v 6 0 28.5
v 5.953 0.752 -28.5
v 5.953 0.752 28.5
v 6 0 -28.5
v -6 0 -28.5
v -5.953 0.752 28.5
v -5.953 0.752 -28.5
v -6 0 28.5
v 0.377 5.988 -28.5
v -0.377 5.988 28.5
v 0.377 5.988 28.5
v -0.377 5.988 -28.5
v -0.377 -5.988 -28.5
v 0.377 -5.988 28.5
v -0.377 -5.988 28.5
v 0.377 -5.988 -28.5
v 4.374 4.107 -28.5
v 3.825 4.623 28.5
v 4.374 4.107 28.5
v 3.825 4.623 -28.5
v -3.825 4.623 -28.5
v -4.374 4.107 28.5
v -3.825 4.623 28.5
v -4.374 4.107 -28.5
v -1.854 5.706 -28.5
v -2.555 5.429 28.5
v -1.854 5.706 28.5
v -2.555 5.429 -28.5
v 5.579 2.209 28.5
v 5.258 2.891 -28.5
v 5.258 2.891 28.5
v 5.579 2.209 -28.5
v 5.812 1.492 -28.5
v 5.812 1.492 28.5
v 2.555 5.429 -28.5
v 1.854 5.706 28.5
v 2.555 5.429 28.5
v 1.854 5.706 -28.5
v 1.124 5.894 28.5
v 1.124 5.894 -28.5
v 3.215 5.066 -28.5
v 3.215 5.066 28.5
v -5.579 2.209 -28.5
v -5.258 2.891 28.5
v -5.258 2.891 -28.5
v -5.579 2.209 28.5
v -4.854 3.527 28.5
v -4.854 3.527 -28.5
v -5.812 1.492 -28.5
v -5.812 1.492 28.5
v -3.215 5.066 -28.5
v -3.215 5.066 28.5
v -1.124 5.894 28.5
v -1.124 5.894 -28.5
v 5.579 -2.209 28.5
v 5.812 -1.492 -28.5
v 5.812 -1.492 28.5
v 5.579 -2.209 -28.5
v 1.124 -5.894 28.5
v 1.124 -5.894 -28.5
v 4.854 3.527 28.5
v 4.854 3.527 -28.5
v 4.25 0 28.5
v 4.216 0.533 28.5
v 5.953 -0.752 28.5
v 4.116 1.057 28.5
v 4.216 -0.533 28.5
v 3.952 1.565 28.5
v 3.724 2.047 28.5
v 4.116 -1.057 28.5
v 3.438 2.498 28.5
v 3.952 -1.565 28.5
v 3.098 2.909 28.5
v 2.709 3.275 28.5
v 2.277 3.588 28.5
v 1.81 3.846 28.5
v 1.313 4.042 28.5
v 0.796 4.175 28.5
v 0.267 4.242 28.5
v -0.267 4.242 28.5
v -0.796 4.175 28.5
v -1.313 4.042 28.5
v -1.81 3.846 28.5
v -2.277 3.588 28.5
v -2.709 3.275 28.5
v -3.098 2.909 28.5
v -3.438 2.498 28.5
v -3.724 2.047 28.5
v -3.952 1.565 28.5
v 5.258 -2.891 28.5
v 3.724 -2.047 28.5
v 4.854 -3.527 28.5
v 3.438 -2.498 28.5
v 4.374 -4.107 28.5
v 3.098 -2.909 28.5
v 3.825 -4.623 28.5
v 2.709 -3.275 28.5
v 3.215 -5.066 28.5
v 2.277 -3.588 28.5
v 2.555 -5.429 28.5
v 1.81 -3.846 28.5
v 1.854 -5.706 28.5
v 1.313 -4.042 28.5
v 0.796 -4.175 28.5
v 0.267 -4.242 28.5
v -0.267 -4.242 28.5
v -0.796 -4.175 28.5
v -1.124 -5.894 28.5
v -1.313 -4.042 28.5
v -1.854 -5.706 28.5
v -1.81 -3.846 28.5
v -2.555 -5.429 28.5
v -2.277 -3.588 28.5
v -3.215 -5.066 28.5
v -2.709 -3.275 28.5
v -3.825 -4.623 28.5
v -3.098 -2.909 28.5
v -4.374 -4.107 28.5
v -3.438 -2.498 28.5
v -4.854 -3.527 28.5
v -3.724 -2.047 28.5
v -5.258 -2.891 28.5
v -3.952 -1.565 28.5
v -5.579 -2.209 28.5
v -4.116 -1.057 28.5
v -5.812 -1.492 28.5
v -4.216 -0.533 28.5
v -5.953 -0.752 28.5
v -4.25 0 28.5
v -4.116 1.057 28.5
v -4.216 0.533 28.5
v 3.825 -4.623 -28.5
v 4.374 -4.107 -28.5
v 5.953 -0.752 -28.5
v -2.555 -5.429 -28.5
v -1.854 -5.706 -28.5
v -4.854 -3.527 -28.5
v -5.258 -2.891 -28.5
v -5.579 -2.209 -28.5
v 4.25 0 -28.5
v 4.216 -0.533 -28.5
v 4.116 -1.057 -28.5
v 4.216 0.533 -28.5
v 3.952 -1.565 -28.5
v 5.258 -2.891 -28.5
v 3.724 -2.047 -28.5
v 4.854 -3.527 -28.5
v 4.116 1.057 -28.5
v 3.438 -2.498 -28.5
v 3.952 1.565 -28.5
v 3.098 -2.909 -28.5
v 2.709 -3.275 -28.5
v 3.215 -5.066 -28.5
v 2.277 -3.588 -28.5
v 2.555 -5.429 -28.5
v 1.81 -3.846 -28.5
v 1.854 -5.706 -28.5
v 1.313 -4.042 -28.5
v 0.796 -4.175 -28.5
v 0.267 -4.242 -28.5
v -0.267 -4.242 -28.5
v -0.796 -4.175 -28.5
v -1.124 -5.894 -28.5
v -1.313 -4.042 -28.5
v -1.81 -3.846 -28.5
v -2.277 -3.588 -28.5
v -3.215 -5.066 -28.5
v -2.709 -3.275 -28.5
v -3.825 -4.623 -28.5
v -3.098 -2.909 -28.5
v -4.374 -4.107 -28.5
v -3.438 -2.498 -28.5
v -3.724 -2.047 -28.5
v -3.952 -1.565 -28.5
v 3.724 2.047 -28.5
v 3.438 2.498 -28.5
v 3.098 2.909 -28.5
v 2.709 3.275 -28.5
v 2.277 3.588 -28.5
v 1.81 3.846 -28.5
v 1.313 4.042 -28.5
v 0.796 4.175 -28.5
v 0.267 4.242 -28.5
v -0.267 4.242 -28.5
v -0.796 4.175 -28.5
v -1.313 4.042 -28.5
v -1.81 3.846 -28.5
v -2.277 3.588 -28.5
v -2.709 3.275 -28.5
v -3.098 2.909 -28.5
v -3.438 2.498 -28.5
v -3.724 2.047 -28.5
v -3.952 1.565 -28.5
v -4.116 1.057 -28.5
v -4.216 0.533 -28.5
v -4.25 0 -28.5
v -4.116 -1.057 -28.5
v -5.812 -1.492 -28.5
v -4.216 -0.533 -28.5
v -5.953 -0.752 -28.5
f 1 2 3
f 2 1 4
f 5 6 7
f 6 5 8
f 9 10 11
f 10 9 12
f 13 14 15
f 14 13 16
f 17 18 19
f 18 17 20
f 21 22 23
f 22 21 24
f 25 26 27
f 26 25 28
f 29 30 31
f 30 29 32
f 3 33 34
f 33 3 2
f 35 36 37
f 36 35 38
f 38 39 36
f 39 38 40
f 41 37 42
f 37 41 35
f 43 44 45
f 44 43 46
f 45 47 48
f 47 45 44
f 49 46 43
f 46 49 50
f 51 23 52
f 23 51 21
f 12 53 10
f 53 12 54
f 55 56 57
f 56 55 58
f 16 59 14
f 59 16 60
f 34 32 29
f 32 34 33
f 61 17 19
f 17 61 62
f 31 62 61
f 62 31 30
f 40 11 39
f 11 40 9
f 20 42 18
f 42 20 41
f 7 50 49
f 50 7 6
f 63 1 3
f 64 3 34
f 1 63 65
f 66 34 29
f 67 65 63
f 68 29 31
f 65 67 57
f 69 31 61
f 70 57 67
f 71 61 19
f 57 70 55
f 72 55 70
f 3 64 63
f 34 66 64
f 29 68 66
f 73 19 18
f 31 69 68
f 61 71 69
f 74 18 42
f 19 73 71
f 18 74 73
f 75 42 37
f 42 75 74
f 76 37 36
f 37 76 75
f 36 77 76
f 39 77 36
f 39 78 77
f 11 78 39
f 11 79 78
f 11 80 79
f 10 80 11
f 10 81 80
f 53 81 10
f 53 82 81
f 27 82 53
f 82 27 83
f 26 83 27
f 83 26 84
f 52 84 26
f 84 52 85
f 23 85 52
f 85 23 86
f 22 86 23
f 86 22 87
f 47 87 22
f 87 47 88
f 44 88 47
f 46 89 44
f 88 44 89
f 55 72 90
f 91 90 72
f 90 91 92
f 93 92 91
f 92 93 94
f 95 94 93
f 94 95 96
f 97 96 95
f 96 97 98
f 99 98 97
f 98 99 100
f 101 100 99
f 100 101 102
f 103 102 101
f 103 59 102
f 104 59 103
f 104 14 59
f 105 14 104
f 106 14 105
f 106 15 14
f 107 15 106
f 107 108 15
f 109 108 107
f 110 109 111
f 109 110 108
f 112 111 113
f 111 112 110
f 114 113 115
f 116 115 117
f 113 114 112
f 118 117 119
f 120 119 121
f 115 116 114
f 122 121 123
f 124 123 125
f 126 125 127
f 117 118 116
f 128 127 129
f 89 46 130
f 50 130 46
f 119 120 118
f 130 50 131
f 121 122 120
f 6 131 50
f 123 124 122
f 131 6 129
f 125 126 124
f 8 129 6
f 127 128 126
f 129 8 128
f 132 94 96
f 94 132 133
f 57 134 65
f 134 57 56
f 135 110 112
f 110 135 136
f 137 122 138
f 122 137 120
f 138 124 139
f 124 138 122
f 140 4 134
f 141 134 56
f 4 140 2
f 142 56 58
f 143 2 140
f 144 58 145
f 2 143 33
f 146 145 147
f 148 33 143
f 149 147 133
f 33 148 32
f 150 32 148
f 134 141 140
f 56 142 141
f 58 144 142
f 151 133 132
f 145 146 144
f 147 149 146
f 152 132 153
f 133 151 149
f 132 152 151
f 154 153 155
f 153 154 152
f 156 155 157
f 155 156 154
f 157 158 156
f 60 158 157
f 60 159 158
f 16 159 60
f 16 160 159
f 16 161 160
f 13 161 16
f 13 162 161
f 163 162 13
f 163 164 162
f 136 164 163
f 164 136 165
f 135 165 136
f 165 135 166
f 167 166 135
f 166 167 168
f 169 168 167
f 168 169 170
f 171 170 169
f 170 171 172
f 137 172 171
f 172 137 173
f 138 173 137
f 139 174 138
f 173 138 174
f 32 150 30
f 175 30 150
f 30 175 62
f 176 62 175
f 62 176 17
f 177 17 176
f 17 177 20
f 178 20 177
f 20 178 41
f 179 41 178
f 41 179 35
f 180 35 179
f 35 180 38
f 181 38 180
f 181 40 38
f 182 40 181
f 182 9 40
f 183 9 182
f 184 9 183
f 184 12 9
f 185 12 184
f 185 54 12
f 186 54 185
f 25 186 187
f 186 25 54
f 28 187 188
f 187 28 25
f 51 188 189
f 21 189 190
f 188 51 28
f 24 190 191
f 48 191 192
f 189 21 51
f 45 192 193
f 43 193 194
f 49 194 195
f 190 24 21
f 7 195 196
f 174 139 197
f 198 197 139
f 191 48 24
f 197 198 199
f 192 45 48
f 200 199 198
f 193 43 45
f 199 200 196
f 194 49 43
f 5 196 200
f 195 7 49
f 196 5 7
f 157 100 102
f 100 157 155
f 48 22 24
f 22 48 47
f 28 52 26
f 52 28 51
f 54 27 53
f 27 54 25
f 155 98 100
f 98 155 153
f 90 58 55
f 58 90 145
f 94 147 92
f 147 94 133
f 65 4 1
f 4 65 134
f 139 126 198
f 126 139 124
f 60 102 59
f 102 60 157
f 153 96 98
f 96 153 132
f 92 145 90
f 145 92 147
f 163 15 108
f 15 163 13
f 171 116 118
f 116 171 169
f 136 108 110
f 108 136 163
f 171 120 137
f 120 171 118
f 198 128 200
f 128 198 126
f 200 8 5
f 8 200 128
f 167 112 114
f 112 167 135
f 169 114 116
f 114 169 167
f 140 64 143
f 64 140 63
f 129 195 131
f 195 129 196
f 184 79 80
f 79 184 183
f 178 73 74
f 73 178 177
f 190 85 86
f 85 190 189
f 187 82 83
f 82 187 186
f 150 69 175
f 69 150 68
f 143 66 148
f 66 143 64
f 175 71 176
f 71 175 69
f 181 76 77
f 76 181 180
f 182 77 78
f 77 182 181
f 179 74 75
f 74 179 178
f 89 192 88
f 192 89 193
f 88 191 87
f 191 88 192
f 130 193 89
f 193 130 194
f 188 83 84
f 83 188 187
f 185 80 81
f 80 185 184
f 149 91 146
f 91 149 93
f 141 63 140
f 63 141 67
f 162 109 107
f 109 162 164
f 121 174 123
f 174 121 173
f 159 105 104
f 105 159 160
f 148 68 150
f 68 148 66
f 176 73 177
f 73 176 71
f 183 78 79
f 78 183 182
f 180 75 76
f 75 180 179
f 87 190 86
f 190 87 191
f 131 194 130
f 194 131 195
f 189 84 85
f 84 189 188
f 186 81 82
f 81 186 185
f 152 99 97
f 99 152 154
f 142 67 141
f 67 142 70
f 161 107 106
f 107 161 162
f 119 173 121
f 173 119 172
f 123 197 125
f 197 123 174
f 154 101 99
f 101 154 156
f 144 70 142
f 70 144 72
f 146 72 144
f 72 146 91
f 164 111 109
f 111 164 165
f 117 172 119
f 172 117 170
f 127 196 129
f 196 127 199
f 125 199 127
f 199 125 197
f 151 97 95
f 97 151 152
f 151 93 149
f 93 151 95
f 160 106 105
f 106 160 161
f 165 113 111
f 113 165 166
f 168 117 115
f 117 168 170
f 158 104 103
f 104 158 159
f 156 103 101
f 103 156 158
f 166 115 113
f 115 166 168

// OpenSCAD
$fn = 50;


difference() {
	union() {
		translate(v = [0, 0, -28.5000000000]) {
			cylinder(h = 57, r = 6.0000000000);
		}
	}
	union() {
		translate(v = [0, 0, -100.0000000000]) {
			cylinder(h = 200, r = 4.2500000000);
		}
	}
}
